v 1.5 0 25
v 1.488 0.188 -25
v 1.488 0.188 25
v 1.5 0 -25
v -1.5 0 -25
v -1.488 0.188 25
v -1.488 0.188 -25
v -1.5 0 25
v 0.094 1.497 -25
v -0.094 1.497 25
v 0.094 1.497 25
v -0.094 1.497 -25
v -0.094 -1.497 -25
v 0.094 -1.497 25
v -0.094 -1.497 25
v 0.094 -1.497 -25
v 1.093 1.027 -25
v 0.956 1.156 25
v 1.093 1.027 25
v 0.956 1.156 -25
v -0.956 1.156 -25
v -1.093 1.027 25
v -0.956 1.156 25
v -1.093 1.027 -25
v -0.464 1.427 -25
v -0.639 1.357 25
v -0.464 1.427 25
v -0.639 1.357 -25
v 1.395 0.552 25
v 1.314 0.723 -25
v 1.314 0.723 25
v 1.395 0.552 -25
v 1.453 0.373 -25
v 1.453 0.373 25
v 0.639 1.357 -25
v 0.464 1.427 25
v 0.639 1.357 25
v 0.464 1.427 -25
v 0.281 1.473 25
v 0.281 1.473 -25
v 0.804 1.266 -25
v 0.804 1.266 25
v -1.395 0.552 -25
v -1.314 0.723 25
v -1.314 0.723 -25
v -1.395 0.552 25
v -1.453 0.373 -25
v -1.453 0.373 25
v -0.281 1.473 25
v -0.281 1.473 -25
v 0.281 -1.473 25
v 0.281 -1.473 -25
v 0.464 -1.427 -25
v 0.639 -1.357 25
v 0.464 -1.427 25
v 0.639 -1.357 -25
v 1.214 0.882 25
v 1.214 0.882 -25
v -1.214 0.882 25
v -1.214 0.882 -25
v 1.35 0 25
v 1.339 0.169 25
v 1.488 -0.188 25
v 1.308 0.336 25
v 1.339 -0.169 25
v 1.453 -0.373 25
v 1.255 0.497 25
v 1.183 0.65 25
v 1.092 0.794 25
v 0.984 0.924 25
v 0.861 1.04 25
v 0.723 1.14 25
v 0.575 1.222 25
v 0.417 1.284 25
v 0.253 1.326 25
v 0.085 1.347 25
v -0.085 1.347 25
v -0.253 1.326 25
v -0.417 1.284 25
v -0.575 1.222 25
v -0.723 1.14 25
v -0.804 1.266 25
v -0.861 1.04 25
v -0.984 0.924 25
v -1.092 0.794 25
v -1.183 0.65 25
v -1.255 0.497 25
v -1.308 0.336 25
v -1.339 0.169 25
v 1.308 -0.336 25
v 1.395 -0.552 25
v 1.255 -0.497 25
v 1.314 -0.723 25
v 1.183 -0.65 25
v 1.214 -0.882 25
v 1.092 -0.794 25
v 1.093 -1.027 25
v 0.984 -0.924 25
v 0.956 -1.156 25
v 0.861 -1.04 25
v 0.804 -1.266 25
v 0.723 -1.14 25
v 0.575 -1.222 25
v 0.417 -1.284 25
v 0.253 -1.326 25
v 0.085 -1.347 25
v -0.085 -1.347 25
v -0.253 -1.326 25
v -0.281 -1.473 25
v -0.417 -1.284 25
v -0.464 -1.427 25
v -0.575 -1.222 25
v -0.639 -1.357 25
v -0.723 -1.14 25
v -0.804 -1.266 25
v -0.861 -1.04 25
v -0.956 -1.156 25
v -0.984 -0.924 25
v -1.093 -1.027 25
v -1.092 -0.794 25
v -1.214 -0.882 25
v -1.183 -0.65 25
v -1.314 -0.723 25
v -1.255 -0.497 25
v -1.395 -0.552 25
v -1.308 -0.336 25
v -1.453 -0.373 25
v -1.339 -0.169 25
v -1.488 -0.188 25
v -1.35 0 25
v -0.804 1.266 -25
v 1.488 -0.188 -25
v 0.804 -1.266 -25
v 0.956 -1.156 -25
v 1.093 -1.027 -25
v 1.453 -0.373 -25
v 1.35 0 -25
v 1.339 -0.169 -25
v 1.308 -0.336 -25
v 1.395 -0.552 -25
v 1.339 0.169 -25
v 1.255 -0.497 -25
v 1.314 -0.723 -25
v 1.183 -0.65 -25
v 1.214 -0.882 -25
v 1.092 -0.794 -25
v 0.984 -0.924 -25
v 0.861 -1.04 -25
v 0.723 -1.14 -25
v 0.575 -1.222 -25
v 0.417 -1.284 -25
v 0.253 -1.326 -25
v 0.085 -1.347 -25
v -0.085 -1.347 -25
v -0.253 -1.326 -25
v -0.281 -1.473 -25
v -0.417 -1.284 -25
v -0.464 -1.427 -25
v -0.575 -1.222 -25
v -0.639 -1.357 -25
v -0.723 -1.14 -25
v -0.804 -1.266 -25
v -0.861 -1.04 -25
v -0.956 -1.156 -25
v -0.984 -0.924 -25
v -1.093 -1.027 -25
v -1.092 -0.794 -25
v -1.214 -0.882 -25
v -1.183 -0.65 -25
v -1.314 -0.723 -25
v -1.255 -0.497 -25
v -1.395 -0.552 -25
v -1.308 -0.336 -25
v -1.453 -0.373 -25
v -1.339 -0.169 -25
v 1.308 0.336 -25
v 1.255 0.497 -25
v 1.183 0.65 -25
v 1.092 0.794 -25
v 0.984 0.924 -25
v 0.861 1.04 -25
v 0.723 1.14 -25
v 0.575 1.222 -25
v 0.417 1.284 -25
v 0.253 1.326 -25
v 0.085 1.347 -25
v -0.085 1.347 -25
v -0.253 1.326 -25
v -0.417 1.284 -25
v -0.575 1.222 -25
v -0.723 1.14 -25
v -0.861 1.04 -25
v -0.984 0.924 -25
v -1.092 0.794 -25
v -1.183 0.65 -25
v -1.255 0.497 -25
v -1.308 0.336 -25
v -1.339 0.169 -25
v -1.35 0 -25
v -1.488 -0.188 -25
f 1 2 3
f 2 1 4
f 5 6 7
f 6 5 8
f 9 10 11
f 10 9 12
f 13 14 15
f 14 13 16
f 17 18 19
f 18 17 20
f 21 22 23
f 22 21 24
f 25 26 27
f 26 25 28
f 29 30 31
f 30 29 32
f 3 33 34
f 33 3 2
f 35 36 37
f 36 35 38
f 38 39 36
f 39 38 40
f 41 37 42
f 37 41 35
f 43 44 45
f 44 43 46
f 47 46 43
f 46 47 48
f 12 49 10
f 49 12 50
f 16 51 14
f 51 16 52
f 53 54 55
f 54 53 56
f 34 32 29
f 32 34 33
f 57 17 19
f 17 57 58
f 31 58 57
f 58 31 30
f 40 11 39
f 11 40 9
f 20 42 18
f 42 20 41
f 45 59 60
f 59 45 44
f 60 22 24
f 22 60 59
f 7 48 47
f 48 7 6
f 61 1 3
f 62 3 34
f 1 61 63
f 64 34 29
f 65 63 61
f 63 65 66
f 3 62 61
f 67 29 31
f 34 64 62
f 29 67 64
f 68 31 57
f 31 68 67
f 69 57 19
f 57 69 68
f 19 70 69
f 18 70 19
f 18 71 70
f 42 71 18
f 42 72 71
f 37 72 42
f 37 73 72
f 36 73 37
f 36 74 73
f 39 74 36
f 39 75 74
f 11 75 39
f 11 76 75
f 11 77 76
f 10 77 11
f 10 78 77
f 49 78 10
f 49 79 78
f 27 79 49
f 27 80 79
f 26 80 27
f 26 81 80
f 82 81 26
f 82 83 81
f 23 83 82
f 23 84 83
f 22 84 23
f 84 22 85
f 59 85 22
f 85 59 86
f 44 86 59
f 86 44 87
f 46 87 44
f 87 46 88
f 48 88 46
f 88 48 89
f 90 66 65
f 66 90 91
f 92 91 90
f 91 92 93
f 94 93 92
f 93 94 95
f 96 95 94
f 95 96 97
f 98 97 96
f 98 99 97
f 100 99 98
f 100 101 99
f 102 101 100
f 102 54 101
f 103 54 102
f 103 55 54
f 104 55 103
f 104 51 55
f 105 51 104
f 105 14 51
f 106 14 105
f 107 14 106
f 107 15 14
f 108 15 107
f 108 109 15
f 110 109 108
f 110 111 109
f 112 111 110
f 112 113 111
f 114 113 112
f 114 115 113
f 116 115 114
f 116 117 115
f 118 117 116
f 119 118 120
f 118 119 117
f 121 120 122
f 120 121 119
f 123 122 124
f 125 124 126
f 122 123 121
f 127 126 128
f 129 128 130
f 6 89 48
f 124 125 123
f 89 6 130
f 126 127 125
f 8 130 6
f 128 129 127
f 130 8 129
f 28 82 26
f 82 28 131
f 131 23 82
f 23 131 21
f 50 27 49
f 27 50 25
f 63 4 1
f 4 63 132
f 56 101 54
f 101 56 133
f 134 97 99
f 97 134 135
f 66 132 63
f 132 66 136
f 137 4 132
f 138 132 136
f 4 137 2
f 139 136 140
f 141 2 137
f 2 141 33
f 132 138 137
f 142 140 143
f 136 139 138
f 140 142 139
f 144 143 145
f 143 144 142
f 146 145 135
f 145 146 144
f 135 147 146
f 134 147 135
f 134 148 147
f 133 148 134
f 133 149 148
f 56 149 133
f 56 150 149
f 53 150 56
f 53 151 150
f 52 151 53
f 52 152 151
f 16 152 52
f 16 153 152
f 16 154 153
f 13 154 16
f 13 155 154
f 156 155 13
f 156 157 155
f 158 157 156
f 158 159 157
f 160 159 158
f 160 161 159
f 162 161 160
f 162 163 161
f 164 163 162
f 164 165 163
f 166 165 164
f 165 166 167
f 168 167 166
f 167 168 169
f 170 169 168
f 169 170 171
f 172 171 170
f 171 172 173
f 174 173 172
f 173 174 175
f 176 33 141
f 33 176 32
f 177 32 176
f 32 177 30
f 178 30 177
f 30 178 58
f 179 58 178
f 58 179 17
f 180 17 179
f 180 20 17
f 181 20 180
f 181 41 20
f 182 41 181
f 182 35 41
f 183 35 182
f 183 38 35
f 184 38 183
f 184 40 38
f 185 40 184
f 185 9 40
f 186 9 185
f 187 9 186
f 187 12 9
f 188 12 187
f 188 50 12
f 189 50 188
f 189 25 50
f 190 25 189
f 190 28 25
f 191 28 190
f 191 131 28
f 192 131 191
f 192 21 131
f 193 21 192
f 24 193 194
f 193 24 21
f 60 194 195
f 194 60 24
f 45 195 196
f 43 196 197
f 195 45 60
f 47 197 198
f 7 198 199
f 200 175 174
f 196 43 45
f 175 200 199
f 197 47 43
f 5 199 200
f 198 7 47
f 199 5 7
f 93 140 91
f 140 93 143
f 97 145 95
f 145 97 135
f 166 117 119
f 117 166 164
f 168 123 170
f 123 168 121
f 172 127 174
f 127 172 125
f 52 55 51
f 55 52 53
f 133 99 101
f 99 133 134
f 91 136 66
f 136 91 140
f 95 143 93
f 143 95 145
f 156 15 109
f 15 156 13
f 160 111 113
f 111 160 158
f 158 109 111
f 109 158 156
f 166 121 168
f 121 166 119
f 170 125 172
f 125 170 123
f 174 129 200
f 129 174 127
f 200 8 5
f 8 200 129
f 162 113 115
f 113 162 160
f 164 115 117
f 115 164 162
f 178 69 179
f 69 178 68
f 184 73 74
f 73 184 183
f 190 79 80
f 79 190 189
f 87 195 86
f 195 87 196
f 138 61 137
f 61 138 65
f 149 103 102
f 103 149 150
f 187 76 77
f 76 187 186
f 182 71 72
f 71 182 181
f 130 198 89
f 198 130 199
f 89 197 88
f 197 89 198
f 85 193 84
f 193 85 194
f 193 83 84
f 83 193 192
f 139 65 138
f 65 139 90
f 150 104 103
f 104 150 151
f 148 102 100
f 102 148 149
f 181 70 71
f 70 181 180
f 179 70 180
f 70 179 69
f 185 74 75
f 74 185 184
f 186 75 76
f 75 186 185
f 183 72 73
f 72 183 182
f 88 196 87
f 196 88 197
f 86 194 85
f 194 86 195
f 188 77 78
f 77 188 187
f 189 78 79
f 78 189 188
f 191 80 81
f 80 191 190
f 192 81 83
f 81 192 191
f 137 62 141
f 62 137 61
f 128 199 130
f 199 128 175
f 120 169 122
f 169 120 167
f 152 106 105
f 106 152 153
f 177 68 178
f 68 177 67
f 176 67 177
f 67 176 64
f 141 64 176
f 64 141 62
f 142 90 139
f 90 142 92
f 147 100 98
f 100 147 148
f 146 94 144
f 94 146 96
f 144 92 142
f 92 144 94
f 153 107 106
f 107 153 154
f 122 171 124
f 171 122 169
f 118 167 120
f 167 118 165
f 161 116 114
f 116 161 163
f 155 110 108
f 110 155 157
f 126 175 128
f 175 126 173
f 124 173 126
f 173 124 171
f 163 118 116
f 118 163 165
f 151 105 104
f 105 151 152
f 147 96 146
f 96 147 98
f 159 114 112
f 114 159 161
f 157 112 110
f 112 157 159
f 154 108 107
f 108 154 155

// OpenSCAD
$fn = 50;


difference() {
	union() {
		translate(v = [0, 0, -25.0000000000]) {
			cylinder(h = 50, r = 1.5000000000);
		}
	}
	union() {
		translate(v = [0, 0, -100.0000000000]) {
			cylinder(h = 200, r = 1.3500000000);
		}
	}
}
